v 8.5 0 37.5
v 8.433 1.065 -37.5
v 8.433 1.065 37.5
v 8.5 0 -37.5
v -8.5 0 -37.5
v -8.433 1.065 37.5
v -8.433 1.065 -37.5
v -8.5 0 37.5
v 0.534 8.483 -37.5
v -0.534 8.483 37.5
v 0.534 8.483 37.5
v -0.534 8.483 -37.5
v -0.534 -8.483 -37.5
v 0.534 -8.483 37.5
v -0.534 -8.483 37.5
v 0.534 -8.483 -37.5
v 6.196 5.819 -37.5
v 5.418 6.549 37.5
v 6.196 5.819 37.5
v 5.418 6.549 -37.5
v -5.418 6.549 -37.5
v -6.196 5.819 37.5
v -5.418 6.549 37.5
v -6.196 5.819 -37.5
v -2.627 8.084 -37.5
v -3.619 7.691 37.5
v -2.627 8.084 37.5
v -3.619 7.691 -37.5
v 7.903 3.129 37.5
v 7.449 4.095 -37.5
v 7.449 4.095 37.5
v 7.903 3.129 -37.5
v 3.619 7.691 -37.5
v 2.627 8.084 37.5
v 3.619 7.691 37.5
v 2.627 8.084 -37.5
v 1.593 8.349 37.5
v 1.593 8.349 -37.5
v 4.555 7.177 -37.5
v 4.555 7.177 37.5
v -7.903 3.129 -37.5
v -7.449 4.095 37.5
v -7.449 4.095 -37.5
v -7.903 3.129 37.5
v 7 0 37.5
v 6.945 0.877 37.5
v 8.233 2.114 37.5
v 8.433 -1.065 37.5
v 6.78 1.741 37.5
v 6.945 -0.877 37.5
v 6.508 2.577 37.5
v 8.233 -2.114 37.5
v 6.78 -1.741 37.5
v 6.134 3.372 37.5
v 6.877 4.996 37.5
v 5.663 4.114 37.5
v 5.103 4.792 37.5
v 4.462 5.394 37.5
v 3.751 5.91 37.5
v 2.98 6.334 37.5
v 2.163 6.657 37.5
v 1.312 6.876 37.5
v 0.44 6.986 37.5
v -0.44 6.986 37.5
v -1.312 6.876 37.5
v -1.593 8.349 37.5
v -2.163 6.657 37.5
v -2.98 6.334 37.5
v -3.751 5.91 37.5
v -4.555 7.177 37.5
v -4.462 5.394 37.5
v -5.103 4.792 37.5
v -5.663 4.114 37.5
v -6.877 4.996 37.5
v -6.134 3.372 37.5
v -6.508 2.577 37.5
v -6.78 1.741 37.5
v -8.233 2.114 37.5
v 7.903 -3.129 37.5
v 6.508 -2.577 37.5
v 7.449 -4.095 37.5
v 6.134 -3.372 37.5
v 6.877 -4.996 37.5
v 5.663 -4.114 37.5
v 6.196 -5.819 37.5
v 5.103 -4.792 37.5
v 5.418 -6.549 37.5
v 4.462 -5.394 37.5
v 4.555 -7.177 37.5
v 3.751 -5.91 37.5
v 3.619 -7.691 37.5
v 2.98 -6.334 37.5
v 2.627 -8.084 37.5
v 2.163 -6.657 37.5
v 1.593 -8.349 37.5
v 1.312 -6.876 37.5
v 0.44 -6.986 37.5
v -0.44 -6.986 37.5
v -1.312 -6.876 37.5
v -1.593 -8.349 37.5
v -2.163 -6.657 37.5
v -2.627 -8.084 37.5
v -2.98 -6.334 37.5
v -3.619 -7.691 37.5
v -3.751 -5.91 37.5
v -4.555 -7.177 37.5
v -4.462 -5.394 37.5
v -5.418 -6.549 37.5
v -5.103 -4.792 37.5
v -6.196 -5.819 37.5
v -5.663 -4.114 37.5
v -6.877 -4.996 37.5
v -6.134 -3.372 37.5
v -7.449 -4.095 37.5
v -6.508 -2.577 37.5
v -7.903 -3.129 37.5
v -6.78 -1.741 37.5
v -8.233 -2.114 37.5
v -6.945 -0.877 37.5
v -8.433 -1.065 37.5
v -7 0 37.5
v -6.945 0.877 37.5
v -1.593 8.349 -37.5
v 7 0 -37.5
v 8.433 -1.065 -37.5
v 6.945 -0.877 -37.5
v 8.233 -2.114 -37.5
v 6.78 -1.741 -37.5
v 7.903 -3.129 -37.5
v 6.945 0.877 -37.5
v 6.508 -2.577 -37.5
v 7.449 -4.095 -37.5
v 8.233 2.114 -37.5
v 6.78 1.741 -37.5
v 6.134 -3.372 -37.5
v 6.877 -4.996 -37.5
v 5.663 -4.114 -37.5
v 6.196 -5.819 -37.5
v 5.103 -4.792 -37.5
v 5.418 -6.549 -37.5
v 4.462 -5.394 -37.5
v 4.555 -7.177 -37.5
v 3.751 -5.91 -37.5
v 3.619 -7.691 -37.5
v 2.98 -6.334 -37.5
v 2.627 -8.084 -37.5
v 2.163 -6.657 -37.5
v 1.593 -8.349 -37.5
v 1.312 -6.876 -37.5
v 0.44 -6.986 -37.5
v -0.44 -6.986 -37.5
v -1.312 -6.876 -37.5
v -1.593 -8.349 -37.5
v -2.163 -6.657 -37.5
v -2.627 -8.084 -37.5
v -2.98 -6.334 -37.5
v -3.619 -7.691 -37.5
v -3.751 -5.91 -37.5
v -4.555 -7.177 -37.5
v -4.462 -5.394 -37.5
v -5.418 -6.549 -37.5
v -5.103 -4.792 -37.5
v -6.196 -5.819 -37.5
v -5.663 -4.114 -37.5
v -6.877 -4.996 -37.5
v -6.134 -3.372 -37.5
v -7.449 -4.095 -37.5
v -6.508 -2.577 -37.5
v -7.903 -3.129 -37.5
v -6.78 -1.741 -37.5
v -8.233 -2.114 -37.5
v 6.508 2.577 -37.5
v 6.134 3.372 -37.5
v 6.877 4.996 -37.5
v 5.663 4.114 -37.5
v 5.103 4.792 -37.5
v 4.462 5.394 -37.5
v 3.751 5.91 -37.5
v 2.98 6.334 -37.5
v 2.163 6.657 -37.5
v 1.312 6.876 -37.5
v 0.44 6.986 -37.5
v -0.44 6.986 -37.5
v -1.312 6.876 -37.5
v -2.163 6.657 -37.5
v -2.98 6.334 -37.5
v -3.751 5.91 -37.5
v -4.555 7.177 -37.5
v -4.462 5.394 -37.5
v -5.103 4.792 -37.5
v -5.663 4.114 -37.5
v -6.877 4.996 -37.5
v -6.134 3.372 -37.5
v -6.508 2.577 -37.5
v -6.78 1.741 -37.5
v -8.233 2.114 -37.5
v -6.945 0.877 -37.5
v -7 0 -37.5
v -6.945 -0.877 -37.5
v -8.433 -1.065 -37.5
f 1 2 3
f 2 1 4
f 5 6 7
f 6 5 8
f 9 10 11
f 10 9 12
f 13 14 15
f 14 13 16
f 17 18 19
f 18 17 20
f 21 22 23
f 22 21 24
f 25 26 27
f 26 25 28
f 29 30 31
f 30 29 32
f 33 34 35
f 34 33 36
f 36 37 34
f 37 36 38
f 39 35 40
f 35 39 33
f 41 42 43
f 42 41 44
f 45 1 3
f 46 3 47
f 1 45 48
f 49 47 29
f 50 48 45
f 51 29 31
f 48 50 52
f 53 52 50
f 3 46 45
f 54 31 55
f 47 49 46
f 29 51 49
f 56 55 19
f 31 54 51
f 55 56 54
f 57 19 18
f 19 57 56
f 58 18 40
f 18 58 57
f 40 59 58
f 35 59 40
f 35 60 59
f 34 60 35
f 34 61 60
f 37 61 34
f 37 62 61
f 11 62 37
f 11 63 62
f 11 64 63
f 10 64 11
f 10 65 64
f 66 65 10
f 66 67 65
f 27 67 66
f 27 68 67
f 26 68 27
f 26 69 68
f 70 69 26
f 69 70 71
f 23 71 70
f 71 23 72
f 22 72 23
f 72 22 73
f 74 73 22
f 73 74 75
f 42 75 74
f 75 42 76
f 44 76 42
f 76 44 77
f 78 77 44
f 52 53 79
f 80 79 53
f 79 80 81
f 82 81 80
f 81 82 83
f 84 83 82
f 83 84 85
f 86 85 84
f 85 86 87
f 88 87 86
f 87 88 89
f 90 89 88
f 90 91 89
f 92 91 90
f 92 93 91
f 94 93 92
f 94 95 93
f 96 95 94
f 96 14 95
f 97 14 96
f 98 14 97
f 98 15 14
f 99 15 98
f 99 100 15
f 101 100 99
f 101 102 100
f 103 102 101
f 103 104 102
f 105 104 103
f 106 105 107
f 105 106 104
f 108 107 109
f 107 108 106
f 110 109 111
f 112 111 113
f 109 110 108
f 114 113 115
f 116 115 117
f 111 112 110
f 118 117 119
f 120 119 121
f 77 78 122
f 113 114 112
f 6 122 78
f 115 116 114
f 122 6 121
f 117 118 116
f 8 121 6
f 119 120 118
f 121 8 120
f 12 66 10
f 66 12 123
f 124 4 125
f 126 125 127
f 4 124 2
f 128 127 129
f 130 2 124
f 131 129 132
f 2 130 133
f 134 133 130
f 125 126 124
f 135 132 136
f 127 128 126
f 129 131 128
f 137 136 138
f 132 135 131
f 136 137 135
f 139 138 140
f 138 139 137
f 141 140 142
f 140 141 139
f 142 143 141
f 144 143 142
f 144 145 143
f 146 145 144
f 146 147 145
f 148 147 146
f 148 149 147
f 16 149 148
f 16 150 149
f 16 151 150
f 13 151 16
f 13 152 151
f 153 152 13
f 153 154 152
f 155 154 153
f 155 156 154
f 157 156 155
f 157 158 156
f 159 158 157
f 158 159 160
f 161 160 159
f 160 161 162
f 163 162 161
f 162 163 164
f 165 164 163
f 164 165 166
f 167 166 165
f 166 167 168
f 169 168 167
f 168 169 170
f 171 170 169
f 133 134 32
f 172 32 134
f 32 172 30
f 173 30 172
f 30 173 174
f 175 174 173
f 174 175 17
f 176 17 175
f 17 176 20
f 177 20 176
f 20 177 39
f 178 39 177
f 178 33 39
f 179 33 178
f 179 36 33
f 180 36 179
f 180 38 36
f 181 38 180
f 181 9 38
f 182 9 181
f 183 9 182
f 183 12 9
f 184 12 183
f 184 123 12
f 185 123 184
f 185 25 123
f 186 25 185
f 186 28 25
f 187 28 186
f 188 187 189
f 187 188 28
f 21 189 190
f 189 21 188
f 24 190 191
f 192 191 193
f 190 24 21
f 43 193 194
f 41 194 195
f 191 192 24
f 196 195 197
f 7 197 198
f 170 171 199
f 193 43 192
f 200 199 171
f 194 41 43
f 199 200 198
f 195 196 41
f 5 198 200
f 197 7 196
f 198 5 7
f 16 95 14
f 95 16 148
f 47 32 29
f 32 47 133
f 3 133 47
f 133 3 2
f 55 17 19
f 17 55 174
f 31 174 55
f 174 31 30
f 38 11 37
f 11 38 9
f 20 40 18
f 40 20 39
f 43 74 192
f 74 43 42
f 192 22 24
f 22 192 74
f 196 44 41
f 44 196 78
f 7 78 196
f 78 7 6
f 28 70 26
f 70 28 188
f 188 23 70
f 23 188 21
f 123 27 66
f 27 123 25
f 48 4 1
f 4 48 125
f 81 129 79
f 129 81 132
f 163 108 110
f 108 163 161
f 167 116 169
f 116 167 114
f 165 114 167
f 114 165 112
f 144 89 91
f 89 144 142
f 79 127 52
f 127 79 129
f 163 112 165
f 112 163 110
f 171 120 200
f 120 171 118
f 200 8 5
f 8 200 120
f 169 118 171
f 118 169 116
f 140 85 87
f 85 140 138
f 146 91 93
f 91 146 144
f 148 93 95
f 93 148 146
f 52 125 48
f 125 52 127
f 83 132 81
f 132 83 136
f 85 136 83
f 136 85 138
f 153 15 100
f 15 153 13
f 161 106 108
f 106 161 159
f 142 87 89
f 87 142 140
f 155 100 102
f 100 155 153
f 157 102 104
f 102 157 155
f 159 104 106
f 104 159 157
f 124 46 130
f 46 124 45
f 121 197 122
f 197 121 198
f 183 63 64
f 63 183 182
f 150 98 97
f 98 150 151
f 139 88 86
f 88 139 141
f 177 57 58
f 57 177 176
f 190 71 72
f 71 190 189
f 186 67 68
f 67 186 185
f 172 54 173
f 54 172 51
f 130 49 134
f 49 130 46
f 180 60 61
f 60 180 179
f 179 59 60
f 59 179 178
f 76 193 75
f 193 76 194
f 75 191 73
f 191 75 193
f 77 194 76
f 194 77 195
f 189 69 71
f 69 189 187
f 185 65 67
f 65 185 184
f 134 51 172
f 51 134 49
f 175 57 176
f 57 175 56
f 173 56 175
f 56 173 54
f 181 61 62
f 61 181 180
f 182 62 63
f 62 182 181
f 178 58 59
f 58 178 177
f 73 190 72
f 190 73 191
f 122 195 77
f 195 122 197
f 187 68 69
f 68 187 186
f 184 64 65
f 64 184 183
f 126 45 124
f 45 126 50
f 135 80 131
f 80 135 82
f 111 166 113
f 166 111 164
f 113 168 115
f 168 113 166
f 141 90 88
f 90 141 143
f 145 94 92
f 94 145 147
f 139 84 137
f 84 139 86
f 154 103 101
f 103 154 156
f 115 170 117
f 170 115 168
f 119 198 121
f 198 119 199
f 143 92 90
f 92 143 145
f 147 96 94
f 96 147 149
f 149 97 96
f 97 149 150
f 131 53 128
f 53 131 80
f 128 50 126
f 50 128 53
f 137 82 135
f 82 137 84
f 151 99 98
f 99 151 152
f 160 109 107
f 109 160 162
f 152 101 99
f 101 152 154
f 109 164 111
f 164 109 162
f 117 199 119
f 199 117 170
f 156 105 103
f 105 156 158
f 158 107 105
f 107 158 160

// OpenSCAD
$fn = 50;


difference() {
	union() {
		translate(v = [0, 0, -37.5000000000]) {
			cylinder(h = 75, r = 8.5000000000);
		}
	}
	union() {
		translate(v = [0, 0, -100.0000000000]) {
			cylinder(h = 200, r = 7);
		}
	}
}
